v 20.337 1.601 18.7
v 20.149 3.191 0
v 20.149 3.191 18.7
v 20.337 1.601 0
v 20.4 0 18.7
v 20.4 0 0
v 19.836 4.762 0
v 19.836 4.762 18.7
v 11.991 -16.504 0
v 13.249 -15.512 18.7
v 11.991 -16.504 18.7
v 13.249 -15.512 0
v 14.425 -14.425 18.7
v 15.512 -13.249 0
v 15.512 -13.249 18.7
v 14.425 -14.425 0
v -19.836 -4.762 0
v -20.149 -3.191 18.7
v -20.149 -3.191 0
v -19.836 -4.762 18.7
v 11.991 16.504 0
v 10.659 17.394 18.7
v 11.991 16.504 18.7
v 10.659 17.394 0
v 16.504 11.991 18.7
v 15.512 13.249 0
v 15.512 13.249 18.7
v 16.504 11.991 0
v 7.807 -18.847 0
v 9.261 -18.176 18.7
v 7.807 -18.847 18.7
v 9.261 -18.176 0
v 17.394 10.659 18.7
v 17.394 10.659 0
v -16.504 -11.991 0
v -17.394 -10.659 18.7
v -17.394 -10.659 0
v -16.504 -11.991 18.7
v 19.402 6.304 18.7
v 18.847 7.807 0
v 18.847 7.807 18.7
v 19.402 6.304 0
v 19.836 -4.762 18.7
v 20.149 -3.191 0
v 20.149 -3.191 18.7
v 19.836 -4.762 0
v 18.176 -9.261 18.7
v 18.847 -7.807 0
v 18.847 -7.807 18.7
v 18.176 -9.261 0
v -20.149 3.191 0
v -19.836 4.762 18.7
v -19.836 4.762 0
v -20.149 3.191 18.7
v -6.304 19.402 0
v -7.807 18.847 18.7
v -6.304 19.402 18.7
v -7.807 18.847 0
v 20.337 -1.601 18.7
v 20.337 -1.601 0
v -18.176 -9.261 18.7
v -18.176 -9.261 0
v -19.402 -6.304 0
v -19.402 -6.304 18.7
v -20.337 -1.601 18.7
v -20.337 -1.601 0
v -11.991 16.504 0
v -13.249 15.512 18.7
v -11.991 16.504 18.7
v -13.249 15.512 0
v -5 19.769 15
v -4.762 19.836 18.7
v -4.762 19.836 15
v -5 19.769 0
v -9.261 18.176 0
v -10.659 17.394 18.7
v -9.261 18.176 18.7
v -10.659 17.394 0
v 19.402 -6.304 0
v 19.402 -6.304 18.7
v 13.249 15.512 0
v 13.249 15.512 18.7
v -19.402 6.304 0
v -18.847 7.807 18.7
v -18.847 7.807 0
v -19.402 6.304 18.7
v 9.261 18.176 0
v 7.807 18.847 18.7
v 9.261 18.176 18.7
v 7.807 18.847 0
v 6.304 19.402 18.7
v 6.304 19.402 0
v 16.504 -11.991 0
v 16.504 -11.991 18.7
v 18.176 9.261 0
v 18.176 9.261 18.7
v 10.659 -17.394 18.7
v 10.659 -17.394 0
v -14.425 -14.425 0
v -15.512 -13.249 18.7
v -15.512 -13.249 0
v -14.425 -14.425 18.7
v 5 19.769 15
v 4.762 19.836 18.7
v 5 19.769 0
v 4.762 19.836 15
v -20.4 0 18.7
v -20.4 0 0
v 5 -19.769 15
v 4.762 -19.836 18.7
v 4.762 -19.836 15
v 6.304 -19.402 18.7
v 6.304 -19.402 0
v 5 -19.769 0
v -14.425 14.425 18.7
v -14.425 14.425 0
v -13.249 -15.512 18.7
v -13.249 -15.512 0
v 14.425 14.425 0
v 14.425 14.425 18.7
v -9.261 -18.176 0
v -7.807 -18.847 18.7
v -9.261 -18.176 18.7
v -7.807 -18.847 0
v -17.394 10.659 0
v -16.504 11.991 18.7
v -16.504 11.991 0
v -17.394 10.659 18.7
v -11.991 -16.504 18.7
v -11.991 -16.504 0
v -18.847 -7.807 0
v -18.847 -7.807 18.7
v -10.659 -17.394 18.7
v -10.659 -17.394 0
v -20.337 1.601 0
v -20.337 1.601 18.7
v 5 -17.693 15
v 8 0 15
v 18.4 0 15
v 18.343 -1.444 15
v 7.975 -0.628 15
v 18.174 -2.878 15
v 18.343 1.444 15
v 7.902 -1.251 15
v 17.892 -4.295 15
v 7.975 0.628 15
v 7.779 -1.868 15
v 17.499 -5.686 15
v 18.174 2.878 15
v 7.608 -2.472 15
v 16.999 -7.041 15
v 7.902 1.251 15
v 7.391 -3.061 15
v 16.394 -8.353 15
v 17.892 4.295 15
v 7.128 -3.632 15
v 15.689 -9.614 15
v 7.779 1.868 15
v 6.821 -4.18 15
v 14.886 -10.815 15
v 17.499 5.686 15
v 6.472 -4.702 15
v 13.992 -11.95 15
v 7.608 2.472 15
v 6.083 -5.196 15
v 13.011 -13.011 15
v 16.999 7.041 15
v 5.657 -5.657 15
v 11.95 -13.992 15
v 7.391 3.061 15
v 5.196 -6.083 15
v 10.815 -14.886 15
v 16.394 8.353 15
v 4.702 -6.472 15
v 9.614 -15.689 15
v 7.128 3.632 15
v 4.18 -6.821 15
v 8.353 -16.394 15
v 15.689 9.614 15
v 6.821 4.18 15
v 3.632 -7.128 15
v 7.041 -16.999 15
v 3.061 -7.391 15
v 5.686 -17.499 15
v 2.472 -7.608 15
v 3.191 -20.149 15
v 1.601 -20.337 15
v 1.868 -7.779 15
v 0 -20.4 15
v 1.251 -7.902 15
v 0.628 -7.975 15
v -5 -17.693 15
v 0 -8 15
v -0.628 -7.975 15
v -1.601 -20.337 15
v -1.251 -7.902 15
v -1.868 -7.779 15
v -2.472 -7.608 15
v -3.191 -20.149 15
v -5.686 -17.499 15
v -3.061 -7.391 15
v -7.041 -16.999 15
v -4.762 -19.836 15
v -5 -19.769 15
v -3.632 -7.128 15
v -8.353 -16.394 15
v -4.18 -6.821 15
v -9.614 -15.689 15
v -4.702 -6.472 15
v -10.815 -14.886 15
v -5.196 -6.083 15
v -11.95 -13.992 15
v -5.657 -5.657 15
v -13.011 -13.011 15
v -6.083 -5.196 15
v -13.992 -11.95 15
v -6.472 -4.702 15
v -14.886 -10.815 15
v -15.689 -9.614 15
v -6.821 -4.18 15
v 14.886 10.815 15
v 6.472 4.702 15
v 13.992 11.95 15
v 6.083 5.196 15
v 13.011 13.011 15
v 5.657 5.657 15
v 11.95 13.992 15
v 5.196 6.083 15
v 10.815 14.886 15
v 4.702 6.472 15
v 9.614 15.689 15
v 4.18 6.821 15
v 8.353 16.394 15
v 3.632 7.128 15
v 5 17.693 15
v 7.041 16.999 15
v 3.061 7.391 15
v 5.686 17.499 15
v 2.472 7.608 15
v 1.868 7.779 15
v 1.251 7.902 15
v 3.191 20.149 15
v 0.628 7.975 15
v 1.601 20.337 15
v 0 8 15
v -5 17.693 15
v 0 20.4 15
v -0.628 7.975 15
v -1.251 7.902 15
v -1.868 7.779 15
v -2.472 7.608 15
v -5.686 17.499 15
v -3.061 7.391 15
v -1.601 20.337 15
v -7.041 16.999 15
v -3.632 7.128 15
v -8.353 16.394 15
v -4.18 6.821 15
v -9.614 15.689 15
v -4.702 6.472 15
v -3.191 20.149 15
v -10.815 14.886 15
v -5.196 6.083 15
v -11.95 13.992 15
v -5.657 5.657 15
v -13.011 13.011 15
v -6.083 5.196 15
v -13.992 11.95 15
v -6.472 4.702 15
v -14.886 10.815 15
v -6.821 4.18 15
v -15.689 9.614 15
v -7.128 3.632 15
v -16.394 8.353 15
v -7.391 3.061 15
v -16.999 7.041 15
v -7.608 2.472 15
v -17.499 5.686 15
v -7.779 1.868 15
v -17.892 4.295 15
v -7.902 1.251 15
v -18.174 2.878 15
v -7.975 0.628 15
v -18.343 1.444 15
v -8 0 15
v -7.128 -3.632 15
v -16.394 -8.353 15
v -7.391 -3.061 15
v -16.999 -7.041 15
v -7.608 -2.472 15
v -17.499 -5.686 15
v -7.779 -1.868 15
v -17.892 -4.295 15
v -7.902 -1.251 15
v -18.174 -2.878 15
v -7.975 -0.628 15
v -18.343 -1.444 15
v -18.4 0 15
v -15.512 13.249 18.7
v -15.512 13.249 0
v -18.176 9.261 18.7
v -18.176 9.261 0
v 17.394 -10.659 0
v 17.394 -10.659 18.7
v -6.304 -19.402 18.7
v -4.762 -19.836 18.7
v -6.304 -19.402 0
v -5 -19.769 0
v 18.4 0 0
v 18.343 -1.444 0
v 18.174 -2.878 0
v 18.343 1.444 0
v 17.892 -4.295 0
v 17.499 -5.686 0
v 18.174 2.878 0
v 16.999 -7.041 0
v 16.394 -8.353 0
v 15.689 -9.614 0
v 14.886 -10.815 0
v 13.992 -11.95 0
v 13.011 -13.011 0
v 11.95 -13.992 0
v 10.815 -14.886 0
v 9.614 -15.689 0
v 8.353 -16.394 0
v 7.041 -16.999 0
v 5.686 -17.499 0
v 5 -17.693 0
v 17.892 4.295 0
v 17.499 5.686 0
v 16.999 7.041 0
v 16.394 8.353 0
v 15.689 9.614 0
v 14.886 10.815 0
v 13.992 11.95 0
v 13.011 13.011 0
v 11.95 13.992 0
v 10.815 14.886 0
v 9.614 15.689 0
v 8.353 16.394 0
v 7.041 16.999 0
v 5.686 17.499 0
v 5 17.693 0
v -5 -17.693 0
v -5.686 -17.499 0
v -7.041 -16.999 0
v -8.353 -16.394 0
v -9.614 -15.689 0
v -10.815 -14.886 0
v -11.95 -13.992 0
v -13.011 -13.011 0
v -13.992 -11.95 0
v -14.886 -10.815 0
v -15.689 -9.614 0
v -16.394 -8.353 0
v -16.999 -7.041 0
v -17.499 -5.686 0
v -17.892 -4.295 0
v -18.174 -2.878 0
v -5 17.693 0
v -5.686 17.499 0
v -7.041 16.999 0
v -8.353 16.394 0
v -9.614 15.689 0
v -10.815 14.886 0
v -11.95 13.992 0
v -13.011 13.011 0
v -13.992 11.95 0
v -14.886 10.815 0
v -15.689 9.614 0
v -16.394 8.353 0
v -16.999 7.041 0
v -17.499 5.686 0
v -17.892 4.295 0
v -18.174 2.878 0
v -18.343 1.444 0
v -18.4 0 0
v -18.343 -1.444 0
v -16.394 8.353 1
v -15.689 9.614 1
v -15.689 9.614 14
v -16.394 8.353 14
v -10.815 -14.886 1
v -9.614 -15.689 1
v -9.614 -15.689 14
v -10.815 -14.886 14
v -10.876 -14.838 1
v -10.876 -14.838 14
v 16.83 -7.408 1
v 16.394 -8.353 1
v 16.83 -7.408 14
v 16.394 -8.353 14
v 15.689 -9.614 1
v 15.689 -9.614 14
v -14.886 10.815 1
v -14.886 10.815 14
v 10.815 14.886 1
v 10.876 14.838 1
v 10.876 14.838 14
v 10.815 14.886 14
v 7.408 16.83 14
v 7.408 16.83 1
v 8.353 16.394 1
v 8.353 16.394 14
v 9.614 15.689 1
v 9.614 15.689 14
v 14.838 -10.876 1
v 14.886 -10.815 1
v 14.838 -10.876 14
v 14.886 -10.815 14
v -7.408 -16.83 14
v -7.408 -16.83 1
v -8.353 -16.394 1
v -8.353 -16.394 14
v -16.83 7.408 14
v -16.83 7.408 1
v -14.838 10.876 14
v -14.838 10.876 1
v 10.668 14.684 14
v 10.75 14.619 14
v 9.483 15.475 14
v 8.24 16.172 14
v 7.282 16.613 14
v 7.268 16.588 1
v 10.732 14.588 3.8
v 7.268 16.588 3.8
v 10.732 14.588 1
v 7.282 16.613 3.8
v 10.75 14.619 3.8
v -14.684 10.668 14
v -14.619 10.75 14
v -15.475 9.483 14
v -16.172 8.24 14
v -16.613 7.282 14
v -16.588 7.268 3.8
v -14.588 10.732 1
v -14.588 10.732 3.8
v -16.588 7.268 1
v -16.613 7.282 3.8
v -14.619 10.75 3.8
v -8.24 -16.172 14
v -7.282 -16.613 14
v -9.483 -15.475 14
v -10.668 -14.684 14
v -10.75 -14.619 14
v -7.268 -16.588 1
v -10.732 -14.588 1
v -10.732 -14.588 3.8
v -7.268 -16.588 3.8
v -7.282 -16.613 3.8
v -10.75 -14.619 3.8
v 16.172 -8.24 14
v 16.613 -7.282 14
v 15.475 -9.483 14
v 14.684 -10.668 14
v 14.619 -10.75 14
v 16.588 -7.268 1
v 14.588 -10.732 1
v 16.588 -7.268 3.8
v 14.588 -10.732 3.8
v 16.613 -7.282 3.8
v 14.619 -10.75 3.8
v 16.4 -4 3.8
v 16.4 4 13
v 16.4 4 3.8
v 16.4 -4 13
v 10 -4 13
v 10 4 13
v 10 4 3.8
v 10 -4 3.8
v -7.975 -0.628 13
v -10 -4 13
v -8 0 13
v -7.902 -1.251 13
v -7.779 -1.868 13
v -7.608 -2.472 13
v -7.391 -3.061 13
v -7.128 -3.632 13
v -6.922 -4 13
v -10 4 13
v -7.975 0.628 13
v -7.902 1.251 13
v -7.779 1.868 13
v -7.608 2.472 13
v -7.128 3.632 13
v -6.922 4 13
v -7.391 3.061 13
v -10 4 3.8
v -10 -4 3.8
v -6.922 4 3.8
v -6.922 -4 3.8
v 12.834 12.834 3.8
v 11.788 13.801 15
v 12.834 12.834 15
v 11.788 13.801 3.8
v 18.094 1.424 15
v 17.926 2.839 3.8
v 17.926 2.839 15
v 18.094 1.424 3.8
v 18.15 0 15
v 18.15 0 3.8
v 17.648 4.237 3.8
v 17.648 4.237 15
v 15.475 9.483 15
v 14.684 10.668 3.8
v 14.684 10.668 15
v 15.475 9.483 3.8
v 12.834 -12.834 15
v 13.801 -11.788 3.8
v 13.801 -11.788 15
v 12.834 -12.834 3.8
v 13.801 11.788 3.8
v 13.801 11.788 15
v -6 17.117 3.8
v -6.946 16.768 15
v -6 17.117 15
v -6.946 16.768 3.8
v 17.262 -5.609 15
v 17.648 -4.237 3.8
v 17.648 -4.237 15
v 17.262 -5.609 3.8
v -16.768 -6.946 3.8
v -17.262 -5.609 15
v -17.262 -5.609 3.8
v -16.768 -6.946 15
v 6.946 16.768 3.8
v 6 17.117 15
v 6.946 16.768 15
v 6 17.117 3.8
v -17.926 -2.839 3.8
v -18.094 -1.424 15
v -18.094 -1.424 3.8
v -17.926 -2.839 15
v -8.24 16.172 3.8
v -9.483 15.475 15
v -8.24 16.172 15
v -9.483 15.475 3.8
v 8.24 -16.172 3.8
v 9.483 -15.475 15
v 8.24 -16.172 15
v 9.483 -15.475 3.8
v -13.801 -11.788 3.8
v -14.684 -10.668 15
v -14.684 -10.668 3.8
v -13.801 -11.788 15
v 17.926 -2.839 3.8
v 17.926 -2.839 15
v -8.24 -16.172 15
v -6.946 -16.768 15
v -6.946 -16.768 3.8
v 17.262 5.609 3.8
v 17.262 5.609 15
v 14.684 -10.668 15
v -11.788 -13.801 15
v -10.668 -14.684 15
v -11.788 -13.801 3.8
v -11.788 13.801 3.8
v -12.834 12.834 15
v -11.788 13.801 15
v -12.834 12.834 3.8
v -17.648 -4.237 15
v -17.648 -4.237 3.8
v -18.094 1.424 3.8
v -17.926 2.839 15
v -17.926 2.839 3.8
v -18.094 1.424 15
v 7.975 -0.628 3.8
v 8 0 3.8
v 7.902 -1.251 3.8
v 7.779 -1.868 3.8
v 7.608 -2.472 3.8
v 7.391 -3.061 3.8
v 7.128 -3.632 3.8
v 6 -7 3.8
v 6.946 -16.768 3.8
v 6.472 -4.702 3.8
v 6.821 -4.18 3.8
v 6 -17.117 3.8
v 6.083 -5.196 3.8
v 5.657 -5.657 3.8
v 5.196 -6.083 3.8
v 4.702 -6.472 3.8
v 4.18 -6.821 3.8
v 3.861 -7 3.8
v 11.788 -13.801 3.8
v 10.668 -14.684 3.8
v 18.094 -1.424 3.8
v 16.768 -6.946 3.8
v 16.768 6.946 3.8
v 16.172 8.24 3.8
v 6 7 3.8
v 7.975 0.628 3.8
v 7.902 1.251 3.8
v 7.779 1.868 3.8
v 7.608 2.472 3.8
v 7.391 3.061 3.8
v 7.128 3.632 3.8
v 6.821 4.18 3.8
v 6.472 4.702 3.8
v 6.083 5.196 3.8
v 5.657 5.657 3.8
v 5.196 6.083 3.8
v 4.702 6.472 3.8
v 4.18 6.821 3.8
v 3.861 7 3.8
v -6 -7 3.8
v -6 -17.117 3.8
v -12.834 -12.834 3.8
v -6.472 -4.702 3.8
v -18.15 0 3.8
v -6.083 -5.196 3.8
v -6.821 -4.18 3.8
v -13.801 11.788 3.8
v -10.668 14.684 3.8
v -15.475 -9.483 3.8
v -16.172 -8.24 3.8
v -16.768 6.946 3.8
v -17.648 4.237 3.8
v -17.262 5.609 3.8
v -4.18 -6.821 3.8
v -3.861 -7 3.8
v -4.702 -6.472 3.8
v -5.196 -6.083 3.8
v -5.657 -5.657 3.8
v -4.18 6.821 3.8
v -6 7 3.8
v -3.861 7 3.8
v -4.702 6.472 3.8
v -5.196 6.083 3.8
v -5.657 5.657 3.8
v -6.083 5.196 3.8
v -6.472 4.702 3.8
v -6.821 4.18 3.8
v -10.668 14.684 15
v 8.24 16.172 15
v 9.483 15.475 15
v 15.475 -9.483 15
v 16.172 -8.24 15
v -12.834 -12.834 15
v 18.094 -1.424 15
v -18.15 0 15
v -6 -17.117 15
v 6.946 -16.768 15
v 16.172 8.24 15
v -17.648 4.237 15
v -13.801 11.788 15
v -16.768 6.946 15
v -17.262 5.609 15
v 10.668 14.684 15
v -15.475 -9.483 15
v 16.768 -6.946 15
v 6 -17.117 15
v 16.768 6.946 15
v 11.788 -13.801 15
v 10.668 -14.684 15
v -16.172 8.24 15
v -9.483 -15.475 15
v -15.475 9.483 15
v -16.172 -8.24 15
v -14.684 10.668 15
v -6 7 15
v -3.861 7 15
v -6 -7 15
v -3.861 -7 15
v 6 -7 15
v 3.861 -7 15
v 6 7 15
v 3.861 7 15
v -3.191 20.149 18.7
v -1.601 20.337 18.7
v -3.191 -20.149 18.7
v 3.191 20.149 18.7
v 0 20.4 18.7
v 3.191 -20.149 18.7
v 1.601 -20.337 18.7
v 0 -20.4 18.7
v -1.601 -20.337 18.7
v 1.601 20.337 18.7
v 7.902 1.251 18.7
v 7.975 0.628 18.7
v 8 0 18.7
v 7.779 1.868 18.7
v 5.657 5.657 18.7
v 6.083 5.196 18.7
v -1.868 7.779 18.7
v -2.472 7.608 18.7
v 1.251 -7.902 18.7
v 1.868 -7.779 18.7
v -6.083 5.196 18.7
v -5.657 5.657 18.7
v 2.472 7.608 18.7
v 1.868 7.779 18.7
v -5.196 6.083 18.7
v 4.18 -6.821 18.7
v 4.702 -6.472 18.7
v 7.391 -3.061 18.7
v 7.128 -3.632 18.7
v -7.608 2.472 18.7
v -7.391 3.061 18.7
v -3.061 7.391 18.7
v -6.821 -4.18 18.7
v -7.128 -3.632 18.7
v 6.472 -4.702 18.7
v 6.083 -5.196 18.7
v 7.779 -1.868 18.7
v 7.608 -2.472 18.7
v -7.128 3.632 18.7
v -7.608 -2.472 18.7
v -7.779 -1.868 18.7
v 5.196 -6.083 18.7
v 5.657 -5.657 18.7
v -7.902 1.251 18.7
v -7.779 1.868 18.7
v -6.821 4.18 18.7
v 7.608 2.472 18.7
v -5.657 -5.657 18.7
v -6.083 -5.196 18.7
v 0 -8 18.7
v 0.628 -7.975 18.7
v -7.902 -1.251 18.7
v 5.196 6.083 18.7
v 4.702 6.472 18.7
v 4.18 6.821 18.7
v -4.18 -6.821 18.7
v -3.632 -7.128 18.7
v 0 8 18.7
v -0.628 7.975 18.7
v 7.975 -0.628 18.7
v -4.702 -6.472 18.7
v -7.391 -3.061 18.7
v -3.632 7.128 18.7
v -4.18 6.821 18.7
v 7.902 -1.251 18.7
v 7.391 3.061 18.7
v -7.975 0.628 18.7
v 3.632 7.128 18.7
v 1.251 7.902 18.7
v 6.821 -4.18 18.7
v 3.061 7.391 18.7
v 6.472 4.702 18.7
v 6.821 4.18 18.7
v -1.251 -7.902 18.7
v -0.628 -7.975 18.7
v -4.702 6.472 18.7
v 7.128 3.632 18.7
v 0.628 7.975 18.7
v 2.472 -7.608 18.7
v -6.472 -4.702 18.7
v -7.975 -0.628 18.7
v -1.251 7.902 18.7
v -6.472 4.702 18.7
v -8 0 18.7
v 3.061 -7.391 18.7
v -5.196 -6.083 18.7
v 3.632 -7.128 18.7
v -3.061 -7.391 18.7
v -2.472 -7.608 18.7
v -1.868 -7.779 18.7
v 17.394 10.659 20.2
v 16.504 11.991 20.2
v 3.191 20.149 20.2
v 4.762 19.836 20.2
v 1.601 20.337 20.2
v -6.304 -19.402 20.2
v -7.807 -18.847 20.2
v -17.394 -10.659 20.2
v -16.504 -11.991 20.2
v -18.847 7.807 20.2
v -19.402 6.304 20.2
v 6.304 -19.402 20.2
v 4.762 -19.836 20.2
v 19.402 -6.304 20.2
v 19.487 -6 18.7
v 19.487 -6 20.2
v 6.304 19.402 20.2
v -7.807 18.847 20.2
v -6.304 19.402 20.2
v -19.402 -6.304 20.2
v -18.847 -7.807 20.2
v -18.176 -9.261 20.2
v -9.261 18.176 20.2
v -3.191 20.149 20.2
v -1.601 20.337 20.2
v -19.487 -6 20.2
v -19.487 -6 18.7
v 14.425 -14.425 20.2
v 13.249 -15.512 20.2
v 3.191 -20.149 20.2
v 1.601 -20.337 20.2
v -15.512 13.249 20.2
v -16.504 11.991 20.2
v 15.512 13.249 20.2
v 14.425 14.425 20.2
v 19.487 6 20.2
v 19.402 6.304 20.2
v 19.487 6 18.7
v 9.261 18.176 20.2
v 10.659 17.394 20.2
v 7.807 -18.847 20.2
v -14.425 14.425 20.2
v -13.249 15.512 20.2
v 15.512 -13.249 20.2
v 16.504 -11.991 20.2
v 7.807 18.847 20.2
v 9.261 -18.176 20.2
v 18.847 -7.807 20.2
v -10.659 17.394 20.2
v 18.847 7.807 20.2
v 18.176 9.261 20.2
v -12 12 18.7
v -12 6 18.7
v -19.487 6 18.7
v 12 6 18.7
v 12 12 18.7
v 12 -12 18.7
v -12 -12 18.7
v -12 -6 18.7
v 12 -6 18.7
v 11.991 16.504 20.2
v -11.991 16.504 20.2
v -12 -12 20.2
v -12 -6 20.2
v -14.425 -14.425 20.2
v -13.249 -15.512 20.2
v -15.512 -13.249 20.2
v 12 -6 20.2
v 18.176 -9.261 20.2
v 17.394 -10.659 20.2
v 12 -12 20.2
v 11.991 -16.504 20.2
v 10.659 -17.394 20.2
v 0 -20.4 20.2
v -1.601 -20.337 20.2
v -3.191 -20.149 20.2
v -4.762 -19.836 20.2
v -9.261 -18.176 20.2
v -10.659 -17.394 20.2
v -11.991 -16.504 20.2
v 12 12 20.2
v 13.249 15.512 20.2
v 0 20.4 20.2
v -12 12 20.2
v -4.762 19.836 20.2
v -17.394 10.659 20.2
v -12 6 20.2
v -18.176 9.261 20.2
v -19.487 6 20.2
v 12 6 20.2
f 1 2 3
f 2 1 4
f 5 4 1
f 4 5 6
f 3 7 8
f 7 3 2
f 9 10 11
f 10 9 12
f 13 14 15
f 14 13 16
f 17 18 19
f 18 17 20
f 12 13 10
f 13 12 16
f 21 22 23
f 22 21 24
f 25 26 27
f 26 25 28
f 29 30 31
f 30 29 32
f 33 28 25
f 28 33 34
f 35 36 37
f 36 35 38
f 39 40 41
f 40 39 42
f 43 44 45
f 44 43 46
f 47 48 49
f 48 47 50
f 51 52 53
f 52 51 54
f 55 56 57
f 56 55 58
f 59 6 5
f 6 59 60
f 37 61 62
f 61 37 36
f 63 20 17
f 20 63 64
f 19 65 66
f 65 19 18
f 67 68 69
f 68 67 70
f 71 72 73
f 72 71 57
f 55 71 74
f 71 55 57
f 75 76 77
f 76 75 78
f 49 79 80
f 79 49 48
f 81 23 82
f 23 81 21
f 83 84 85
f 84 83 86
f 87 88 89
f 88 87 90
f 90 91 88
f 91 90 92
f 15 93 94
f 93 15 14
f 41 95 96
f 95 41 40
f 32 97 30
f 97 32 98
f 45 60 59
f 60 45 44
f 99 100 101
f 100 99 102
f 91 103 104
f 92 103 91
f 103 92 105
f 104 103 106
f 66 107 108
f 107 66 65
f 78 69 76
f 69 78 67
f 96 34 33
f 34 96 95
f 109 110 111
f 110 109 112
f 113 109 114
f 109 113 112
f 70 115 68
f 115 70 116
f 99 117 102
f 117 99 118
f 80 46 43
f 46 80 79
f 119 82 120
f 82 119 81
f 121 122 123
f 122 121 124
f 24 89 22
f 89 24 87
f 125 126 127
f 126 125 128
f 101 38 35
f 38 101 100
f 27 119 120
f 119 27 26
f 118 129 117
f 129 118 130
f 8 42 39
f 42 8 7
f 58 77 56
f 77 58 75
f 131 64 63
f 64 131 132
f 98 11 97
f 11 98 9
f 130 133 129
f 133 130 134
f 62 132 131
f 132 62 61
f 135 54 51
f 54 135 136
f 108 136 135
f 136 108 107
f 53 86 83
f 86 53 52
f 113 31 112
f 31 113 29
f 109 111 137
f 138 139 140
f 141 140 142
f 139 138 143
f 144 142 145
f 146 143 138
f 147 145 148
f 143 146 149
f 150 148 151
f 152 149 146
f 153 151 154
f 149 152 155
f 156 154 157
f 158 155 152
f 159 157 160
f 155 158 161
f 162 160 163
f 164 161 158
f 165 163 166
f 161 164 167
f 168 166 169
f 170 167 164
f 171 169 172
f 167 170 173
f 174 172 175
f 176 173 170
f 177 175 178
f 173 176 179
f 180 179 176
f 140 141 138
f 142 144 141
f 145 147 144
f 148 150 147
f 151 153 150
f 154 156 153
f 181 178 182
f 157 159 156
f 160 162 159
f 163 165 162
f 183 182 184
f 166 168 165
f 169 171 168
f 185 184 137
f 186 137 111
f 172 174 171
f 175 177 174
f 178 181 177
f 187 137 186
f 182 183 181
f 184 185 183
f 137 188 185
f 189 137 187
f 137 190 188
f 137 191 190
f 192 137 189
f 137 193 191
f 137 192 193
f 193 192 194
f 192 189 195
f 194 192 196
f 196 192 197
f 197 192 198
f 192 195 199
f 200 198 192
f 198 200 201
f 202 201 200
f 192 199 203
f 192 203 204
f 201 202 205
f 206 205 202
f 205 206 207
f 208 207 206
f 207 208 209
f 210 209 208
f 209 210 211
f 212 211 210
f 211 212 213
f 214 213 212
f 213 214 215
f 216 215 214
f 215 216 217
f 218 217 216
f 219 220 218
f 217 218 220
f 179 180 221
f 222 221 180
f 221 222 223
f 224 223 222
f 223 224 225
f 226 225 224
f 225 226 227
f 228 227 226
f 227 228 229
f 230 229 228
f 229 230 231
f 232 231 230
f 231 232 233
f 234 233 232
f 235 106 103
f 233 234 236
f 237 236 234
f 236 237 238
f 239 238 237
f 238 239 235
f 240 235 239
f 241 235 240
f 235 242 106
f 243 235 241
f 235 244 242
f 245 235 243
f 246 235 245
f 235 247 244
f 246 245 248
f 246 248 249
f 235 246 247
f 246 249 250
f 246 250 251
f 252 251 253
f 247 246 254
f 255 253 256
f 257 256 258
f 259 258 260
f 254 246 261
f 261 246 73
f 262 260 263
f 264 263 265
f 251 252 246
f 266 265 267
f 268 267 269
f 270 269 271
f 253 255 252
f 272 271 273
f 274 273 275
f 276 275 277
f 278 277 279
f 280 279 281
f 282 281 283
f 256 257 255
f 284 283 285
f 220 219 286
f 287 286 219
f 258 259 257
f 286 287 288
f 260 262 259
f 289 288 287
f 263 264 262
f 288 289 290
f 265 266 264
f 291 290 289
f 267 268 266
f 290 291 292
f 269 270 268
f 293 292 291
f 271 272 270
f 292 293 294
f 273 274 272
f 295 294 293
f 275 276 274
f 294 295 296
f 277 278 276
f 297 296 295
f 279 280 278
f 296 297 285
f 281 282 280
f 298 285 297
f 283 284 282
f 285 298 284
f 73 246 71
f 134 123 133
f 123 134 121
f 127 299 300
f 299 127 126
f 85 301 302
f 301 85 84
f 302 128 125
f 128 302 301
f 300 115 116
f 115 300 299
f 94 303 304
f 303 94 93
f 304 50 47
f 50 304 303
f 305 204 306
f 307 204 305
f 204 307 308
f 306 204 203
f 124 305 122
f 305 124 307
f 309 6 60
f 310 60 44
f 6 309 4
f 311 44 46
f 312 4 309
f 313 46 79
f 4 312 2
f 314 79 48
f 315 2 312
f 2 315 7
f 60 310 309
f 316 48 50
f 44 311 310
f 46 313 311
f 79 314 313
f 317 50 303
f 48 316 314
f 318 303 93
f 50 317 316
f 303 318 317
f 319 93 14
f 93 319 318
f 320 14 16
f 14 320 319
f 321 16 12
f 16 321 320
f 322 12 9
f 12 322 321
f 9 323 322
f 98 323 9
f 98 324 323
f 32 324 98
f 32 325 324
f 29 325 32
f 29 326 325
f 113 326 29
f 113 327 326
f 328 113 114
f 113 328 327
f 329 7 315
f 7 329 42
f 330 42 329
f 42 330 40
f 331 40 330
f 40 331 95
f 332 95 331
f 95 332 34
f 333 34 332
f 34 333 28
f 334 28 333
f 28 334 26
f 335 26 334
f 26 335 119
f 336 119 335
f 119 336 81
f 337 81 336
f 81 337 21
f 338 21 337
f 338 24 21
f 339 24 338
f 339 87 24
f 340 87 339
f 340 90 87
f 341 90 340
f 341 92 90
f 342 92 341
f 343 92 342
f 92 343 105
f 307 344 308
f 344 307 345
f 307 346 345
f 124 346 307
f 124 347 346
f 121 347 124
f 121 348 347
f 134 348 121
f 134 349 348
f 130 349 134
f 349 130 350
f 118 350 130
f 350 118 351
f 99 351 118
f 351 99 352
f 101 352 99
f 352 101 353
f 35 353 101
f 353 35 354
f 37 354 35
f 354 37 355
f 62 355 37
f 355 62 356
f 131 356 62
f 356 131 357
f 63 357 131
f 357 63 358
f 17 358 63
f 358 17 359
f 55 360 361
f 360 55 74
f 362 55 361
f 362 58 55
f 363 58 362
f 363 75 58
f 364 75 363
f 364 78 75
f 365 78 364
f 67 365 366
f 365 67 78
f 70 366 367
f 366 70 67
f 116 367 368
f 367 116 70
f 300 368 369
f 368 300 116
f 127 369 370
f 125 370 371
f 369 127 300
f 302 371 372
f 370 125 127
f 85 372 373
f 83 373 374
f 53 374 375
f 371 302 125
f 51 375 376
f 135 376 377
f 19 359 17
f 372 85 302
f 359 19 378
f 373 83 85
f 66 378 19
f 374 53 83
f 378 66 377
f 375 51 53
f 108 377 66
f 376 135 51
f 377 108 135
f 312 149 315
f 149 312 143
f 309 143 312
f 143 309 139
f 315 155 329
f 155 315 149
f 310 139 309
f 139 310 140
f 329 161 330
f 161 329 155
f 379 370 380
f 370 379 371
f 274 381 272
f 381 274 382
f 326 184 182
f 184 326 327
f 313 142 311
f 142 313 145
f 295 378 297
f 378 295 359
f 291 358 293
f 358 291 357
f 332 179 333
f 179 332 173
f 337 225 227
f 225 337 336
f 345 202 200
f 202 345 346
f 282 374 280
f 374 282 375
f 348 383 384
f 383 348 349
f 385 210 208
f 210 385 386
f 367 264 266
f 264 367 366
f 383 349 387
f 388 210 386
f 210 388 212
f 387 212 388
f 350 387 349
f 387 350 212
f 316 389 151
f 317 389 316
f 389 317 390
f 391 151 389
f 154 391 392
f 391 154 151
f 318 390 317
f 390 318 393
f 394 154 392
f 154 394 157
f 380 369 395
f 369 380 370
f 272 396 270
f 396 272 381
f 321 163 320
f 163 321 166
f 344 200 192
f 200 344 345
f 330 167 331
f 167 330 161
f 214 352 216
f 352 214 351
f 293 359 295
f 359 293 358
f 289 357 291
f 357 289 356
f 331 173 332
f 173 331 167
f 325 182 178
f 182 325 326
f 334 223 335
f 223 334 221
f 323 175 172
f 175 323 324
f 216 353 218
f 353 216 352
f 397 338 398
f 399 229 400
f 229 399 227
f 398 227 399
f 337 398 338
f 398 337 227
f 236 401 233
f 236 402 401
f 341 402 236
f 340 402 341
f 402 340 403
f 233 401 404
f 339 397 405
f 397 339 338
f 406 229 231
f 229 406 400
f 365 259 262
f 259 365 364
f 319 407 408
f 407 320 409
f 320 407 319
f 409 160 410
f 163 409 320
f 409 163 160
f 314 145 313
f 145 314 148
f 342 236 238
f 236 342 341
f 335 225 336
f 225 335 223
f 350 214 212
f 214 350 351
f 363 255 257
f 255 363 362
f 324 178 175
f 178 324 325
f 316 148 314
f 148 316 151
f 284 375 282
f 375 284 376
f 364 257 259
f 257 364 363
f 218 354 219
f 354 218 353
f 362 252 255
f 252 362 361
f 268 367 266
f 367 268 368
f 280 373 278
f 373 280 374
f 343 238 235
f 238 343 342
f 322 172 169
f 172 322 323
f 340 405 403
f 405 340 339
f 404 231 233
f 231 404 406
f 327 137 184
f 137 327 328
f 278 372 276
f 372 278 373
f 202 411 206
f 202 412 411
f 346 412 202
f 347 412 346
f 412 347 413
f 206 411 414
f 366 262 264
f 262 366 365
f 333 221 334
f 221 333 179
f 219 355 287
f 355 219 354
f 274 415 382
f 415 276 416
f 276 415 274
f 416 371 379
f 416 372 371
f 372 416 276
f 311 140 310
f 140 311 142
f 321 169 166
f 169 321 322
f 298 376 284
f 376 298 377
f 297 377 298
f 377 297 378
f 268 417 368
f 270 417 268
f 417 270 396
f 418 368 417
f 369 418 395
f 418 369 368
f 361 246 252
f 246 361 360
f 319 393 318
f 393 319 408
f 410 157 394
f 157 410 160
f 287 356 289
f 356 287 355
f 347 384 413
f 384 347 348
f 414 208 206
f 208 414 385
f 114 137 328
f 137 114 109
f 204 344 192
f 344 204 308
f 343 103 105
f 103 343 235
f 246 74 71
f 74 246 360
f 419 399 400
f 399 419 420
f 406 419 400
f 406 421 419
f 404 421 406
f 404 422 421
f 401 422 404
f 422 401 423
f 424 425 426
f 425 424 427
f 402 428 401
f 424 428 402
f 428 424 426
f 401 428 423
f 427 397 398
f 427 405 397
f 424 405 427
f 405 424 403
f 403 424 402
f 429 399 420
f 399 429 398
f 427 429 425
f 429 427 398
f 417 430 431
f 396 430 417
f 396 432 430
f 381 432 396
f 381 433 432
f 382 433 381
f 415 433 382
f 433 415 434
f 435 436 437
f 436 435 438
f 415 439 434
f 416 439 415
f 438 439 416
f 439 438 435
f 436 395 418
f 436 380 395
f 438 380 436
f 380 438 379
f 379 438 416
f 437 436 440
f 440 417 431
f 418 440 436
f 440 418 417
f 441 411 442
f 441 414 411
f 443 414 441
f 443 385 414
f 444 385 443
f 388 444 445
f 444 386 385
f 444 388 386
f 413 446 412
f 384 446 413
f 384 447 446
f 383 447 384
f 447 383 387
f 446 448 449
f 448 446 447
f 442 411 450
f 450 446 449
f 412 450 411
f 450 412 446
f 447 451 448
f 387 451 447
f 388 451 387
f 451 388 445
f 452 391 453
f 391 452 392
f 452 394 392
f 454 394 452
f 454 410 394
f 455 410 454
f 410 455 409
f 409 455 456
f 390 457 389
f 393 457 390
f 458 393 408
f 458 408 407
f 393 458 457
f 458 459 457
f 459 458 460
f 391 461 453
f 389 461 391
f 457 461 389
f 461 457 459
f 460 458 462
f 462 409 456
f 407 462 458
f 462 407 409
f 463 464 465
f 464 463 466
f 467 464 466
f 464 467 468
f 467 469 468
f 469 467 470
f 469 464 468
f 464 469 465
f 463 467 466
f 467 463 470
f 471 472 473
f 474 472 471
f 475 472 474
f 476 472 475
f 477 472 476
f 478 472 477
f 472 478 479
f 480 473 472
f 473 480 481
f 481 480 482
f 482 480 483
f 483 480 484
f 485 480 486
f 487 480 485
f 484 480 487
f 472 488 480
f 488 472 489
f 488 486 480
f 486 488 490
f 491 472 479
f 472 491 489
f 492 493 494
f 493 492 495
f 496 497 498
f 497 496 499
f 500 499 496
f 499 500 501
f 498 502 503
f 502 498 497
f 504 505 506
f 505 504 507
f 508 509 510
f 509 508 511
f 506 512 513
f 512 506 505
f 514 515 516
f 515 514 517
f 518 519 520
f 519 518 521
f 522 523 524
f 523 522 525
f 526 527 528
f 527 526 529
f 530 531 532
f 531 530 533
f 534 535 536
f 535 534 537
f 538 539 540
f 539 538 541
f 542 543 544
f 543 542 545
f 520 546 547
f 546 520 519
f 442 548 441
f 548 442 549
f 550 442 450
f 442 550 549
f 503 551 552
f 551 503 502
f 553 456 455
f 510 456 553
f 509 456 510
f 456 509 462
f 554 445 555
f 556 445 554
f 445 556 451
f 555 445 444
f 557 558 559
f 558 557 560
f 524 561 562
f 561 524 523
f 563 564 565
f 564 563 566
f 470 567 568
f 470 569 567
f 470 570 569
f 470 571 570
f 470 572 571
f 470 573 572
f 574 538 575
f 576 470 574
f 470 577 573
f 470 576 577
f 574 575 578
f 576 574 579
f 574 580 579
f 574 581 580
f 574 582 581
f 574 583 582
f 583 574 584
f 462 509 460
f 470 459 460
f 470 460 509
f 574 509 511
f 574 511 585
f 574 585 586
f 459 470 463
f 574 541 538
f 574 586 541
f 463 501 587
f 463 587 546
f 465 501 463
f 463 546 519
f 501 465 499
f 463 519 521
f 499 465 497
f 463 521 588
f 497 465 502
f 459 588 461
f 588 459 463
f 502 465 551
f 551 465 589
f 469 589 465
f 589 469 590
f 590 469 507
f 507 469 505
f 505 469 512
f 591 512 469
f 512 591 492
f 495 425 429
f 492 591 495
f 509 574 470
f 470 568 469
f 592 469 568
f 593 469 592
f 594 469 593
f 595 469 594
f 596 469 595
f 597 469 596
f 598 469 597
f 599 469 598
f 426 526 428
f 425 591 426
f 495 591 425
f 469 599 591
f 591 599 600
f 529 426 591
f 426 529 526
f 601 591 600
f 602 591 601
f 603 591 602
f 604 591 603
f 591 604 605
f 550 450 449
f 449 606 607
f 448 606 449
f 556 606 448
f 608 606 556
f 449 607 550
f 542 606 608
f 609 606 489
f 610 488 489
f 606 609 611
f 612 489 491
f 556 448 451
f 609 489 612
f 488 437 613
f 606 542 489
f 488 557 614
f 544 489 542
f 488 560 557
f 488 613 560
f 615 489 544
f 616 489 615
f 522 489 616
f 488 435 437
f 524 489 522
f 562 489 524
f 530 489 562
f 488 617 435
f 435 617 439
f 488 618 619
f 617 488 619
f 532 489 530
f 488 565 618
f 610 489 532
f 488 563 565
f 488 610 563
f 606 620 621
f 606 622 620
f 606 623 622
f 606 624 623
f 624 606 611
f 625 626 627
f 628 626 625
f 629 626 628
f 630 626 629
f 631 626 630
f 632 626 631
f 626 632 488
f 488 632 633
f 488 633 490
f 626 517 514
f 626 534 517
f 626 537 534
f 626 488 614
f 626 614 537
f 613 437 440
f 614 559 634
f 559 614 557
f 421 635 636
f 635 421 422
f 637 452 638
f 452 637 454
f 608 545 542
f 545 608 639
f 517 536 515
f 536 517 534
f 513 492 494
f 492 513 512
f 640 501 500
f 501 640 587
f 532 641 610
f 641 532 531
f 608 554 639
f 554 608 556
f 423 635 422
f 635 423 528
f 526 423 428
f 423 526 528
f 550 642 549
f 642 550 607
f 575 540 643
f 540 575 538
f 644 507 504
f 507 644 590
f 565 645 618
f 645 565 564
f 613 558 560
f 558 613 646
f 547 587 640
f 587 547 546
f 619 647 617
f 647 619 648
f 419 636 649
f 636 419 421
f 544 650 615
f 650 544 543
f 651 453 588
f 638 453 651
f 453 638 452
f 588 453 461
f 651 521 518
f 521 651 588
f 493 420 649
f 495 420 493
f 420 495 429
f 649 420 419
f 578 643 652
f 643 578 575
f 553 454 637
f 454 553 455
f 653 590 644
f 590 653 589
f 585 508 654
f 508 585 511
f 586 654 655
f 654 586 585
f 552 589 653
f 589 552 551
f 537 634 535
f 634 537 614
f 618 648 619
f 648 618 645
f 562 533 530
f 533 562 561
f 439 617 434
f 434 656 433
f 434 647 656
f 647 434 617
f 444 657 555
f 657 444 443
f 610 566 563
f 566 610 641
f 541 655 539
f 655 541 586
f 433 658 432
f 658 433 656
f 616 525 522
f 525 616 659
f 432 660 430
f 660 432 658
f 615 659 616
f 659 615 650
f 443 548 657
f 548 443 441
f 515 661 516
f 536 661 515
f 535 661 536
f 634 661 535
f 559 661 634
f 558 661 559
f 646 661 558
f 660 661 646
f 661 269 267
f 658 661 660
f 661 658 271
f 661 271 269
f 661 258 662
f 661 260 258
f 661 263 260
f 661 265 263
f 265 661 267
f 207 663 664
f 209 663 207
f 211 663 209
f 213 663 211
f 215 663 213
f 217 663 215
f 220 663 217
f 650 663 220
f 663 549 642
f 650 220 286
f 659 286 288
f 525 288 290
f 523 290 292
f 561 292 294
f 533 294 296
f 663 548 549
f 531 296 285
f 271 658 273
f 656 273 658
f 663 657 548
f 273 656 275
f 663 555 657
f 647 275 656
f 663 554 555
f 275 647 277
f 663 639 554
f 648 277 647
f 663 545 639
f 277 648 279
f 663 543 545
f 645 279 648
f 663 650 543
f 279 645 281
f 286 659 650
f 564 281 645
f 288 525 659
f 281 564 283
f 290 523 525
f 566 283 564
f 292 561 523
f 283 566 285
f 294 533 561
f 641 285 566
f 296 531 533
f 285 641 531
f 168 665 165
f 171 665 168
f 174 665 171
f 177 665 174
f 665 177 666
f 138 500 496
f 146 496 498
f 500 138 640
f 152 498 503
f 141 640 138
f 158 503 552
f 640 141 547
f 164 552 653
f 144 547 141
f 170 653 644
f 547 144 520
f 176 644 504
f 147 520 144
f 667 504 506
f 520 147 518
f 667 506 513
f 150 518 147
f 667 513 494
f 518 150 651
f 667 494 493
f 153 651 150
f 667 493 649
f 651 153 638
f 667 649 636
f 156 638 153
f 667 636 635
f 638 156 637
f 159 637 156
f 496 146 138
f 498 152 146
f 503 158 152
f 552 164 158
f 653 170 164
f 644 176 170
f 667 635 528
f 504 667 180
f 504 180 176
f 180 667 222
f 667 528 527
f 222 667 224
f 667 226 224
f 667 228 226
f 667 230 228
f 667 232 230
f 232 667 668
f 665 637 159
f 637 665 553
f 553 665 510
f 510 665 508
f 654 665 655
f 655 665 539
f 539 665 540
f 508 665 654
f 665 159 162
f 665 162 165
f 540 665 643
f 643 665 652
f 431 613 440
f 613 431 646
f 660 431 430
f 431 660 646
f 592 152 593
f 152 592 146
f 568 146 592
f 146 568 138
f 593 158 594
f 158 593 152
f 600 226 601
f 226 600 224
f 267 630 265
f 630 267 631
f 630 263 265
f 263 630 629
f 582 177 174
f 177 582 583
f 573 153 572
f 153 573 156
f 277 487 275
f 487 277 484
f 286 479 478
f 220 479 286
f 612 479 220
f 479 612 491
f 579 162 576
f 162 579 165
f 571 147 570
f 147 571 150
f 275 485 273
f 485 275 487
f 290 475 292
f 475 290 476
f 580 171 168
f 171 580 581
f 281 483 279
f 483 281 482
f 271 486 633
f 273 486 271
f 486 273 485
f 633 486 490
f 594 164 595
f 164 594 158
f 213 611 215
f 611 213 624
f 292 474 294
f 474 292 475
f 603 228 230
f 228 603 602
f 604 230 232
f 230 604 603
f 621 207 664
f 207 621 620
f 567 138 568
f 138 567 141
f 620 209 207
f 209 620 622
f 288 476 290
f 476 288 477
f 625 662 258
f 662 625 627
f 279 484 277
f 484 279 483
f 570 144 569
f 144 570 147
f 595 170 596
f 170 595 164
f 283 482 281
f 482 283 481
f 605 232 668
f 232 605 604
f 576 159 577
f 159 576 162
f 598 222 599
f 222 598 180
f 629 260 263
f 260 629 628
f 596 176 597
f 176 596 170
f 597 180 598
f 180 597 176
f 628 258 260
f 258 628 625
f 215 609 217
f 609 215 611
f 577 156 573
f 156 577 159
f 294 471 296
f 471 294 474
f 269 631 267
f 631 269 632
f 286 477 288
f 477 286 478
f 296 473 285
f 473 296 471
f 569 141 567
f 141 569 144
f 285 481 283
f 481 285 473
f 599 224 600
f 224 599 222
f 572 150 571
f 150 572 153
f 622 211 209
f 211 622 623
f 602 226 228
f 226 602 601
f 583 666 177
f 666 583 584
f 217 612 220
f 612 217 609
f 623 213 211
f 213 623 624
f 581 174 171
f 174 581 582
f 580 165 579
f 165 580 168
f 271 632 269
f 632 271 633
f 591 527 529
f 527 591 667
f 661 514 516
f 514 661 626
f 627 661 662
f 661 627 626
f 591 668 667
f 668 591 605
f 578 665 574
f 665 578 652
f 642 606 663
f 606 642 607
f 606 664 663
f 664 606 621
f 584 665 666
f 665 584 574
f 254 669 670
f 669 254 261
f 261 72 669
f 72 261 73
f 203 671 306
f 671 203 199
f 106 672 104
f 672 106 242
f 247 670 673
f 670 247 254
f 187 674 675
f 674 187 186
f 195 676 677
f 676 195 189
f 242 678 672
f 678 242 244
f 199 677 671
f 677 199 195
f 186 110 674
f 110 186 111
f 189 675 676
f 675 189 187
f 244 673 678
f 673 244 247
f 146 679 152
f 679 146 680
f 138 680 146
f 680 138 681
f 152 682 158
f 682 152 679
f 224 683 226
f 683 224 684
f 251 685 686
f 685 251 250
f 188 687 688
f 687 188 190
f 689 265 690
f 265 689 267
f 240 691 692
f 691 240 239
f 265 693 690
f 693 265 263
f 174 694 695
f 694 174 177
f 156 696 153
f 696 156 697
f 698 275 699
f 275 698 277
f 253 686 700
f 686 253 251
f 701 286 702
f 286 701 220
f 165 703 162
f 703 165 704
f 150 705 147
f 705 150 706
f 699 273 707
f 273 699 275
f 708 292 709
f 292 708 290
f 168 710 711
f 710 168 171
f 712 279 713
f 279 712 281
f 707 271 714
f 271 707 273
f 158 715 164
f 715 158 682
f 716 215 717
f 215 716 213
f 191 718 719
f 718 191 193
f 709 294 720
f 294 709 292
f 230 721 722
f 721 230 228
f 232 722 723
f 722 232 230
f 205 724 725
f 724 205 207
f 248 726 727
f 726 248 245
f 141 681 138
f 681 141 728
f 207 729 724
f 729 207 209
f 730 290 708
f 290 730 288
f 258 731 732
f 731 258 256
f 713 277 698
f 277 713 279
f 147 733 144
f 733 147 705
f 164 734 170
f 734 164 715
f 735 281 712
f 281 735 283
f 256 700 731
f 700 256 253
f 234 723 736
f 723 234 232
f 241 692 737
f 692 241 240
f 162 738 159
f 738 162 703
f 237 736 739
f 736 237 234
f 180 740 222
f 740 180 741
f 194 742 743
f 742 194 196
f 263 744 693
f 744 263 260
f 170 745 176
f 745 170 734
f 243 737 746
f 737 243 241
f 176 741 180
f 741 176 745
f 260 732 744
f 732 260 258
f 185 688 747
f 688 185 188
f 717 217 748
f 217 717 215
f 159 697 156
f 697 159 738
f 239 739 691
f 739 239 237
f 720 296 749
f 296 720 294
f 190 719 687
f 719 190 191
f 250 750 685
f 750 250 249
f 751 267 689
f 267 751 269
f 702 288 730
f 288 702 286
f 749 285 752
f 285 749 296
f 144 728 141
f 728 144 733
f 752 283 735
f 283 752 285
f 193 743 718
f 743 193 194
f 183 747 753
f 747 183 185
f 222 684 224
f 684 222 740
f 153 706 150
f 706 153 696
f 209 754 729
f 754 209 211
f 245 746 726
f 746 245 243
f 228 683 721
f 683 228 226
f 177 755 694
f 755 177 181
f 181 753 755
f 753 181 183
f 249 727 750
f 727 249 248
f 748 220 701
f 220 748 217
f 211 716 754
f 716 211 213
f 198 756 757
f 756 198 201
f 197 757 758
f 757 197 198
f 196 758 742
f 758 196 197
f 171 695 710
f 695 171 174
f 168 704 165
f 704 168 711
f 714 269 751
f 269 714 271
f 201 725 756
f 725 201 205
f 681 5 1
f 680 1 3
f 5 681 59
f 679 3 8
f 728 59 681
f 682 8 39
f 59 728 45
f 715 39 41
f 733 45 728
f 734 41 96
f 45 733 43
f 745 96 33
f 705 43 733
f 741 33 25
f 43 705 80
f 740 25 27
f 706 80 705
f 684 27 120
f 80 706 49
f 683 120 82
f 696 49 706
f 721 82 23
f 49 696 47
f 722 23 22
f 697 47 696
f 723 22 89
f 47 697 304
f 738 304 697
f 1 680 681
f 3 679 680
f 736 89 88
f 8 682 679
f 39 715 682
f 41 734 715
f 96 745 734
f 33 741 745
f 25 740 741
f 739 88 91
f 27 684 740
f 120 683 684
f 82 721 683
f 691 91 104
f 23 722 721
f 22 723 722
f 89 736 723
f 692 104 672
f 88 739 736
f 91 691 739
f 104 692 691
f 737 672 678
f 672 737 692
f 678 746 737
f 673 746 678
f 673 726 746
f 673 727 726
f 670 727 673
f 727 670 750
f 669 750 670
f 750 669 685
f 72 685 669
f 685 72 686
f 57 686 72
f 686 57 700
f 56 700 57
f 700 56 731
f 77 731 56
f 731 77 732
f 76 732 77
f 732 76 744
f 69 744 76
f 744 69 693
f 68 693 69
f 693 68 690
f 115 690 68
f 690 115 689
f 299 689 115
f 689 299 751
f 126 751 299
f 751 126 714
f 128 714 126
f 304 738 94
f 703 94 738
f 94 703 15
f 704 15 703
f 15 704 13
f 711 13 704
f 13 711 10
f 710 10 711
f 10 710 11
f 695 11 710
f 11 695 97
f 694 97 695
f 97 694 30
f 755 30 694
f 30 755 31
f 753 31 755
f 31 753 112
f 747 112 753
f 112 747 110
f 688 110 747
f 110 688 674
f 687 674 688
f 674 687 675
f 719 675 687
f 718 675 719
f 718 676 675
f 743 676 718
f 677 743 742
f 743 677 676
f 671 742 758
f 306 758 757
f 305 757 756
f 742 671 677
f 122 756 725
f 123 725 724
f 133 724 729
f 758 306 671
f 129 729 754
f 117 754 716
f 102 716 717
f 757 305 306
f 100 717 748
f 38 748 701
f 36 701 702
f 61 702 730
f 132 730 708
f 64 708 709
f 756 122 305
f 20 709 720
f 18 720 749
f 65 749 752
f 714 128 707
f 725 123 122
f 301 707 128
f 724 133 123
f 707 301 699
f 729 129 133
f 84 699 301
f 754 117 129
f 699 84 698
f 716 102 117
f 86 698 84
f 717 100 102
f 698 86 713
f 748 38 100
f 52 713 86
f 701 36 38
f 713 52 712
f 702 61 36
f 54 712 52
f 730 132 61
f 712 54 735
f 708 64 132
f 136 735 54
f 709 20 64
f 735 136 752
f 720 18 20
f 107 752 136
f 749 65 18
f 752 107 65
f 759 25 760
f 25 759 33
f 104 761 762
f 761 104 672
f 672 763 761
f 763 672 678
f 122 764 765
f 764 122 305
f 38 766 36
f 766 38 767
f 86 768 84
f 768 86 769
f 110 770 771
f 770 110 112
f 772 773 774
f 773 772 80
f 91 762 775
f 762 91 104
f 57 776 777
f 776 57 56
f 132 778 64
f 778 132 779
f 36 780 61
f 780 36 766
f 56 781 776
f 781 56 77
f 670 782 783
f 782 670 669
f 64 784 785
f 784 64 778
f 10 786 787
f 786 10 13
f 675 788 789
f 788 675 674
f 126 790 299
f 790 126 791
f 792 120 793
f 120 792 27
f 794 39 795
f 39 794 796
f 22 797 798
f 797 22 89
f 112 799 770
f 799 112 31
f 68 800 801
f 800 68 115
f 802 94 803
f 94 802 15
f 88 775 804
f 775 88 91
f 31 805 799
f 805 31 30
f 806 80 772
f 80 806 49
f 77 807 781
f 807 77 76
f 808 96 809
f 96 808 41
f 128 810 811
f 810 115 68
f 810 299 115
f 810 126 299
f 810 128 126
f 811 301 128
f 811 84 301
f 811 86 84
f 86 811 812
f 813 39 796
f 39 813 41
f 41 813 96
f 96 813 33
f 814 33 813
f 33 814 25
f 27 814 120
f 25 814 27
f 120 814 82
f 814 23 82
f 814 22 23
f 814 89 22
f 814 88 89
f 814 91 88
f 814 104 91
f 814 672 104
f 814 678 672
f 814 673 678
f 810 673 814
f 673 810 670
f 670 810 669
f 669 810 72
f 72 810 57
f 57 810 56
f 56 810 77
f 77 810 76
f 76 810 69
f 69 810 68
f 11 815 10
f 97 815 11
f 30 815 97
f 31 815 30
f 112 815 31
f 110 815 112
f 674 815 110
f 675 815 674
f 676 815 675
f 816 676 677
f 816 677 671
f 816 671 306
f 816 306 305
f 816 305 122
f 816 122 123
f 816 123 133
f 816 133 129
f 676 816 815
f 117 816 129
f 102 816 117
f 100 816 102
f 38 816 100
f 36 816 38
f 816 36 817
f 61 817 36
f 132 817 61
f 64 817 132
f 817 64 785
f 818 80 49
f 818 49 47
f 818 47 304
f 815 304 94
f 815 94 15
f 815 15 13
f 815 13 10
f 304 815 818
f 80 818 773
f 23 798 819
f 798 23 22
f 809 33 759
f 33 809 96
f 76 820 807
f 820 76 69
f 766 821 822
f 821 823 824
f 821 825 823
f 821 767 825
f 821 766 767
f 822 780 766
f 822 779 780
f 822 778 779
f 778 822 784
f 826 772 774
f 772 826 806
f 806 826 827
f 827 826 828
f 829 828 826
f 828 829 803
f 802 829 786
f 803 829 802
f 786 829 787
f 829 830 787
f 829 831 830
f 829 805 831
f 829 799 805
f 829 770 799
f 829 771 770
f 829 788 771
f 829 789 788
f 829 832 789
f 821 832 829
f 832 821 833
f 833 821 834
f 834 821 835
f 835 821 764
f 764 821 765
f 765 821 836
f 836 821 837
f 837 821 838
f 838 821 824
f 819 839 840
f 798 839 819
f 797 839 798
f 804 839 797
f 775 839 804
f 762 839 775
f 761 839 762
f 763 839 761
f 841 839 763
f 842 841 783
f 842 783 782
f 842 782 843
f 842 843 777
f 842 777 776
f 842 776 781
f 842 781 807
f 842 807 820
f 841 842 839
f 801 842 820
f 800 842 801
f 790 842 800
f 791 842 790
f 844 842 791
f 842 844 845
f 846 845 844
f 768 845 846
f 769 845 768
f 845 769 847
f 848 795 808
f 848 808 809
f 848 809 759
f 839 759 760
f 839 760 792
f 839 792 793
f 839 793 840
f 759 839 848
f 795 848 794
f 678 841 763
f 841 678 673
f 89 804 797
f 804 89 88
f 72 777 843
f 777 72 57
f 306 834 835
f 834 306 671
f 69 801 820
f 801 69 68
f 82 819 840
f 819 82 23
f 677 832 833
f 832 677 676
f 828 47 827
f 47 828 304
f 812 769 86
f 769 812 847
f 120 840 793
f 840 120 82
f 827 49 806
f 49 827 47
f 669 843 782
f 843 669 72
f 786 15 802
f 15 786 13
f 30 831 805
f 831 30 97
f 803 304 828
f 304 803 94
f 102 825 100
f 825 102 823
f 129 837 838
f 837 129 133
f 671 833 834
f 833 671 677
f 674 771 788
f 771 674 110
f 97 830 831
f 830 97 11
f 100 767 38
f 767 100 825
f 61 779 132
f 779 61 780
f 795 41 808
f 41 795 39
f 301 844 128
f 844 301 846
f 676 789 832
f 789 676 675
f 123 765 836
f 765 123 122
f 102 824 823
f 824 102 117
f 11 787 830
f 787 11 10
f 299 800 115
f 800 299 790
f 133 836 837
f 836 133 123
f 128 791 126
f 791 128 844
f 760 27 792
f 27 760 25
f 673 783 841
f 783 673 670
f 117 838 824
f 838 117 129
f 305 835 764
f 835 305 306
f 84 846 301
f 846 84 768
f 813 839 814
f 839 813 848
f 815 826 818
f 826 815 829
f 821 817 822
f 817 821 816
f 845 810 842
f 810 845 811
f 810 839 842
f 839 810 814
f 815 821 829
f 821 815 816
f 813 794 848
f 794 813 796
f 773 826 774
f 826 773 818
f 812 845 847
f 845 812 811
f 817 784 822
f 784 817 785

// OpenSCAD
// ============================================
// AS5600 Encoder Mount for Greartisan GB37RG Motor
// REAR MOUNT V3 — PCB on outer face, deeper collar
// ============================================
// Collar friction-fits onto motor body. AS5600 PCB sits in a
// recessed pocket on the outer face, IC facing inward through
// center window toward the magnet. Internal shelf maintains
// air gap geometry.
//
// Motor: Greartisan GB37RG (36.2mm motor body)
// Encoder: UMLIFE AS5600 breakout (23x23mm)

// --- Motor Rear Parameters ---
motor_body_dia     = 36.2;
rear_shaft_dia     = 2;        // measured
rear_shaft_len     = 1;        // measured
rear_hub_dia       = 10;
terminal_width     = 6;
terminal_clearance = 4;

// --- AS5600 Board Parameters ---
pcb_size           = 23;
pcb_thick          = 1.6;
pcb_hole_spacing   = 20;       // measured
pcb_hole_dia       = 2.2;
pcb_clearance      = 0.5;
header_slot_width  = 12;

// --- Magnet & Air Gap ---
magnet_dia         = 6;
magnet_thick       = 2.5;
air_gap            = 1.5;

// --- Mount Parameters ---
collar_wall        = 2;
collar_depth       = 15;       // V3: increased from 10 to 15mm for better grip
collar_clearance   = 0.3;
plate_thick        = 2.5;
wire_slot_width    = 10;

// --- PCB Pocket Parameters (outer face) ---
pocket_depth       = 1.2;      // recess depth for PCB
pocket_wall        = 1.5;      // protective lip height
ic_window          = 16;       // center window for IC

// --- Calculated ---
collar_id      = motor_body_dia + collar_clearance * 2;
collar_od      = collar_id + collar_wall * 2;

ic_above_endcap = rear_shaft_len + magnet_thick + air_gap;  // 5mm

// Internal shelf height: accounts for both air gap AND pocket depression
// The pocket lowers the PCB by pocket_depth, so the shelf must be taller
// to maintain the same magnet-to-IC distance
shelf_hang     = collar_depth - ic_above_endcap + pocket_depth;  // 15-5+1.2 = 11.2mm

// Shelf window — same as IC window for magnet visibility
shelf_window   = ic_window;

plate_top_z    = collar_depth + plate_thick;
pocket_size    = pcb_size + pcb_clearance * 2;

$fn = 80;

// ============ COLLAR (motor-facing) ============

module collar() {
    difference() {
        cylinder(d=collar_od, h=collar_depth);
        
        // Inner bore
        translate([0, 0, -0.5])
            cylinder(d=collar_id, h=collar_depth + 1);
        
        // Wire slots for power terminals (opposite sides, Y axis)
        translate([-wire_slot_width/2, -collar_od/2 - 1, -0.5])
            cube([wire_slot_width, collar_wall + 2, collar_depth + 1]);
        translate([-wire_slot_width/2, collar_id/2 - 1, -0.5])
            cube([wire_slot_width, collar_wall + 2, collar_depth + 1]);
    }
}

// ============ INTERNAL SHELF (replaces V2 posts + bridges) ============

module internal_shelf() {
    // Solid disc shelf inside the collar — acts as air gap spacer
    // and structural platform. Has terminal clearance gaps on Y axis
    // (same sides as the collar wire slots) for motor power terminals.
    shelf_z = collar_depth - shelf_hang;

    // Terminal gap dimensions — must clear the brass tabs + solder + wires
    terminal_gap_width = wire_slot_width + 2;  // slightly wider than collar wire slots

    translate([0, 0, shelf_z]) {
        difference() {
            // Solid disc spanning the full collar bore
            cylinder(d=collar_id - 0.5, h=shelf_hang);

            // Center window — magnet/shaft clearance
            translate([0, 0, -0.5])
                cylinder(d=shelf_window, h=shelf_hang + 1);

            // Terminal clearance gaps on +Y and -Y sides
            // These align with the collar wire slots so terminals pass through
            translate([-terminal_gap_width/2, shelf_window/2 - 1, -0.5])
                cube([terminal_gap_width, collar_id/2, shelf_hang + 1]);
            translate([-terminal_gap_width/2, -collar_id/2, -0.5])
                cube([terminal_gap_width, collar_id/2 - shelf_window/2 + 1, shelf_hang + 1]);

            // Lightening cutouts on X axis (where there are no terminals)
            // Saves plastic while keeping structural ribs
            for (sign = [1, -1]) {
                translate([sign * (shelf_window/2 + 2), -4, -0.5])
                    cube([collar_id/2 - shelf_window/2 - 4, 8, shelf_hang - 2 + 0.5]);
            }
        }
    }
}

module grip_bumps() {
    bump_h = 0.4;
    bump_w = 4;
    bump_len = collar_depth - 2;
    
    for (angle = [60, 150, 240, 330]) {
        rotate([0, 0, angle])
        translate([collar_id/2 - bump_h, -bump_w/2, 1])
            cube([bump_h, bump_w, bump_len]);
    }
}

// ============ PLATE WITH WINDOW ============

module plate_with_window() {
    translate([0, 0, collar_depth]) {
        difference() {
            cylinder(d=collar_od, h=plate_thick);
            translate([0, 0, -0.5])
                cylinder(d=ic_window, h=plate_thick + 1);
        }
    }
}

// ============ PCB POCKET (outer face) ============

module pcb_pocket() {
    pocket_z = plate_top_z;
    lip_z = pocket_z + pocket_depth;
    half_pocket = pocket_size / 2;
    half_collar = collar_od / 2;
    
    // 1. Pocket floor ring (PCB rests on this)
    translate([0, 0, pocket_z])
    difference() {
        cylinder(d=collar_od, h=pocket_depth);
        translate([0, 0, -0.5])
            cylinder(d=ic_window, h=pocket_depth + 1);
    }
    
    // 2. Protective lip with header slots
    translate([0, 0, lip_z]) {
        difference() {
            cylinder(d=collar_od, h=pocket_wall);
            
            // Square pocket interior
            translate([-half_pocket, -half_pocket, -0.5])
                cube([pocket_size, pocket_size, pocket_wall + 1]);
            
            // Header slot on +X side (DIR, SCL, SDA, GPO)
            translate([half_pocket - 1, -header_slot_width/2, -0.5])
                cube([half_collar, header_slot_width, pocket_wall + 1]);
            
            // Header slot on -X side (VCC, OUT, GND)
            translate([-half_collar - 1, -header_slot_width/2, -0.5])
                cube([half_collar, header_slot_width, pocket_wall + 1]);
        }
    }
    
    // 3. M2 screw bosses in pocket floor
    hs = pcb_hole_spacing / 2;
    for (pos = [[hs,hs], [-hs,hs], [-hs,-hs], [hs,-hs]]) {
        translate([pos[0], pos[1], pocket_z]) {
            difference() {
                cylinder(d=4.5, h=pocket_depth);
                translate([0, 0, -plate_thick - 0.5])
                    cylinder(d=1.8, h=plate_thick + pocket_depth + 1);
            }
        }
    }
}

// ============ GHOST PARTS ============

module motor_ghost() {
    color("silver", 0.15) {
        translate([0, 0, -30])
            cylinder(d=motor_body_dia, h=30 + collar_depth);
        cylinder(d=motor_body_dia, h=1);
        cylinder(d=rear_hub_dia, h=2);
        cylinder(d=rear_shaft_dia, h=rear_shaft_len);
    }
    color("gray", 0.3)
        translate([0, 0, rear_shaft_len])
            cylinder(d=magnet_dia, h=magnet_thick);
}

module pcb_ghost_v3() {
    pcb_z = plate_top_z;
    color("green", 0.3)
        translate([-pcb_size/2, -pcb_size/2, pcb_z])
            cube([pcb_size, pcb_size, pcb_thick]);
    color("gold", 0.4) {
        translate([pcb_size/2 - 1, -6, pcb_z + pcb_thick])
            cube([2, 12, 8]);
        translate([-pcb_size/2 - 1, -4, pcb_z + pcb_thick])
            cube([2, 8, 8]);
    }
}

// ============ ASSEMBLY ============

module rear_mount_v3() {
    collar();
    grip_bumps();
    internal_shelf();
    plate_with_window();
    pcb_pocket();
}

rear_mount_v3();

// Uncomment for assembly context:
// motor_ghost();
// pcb_ghost_v3();
